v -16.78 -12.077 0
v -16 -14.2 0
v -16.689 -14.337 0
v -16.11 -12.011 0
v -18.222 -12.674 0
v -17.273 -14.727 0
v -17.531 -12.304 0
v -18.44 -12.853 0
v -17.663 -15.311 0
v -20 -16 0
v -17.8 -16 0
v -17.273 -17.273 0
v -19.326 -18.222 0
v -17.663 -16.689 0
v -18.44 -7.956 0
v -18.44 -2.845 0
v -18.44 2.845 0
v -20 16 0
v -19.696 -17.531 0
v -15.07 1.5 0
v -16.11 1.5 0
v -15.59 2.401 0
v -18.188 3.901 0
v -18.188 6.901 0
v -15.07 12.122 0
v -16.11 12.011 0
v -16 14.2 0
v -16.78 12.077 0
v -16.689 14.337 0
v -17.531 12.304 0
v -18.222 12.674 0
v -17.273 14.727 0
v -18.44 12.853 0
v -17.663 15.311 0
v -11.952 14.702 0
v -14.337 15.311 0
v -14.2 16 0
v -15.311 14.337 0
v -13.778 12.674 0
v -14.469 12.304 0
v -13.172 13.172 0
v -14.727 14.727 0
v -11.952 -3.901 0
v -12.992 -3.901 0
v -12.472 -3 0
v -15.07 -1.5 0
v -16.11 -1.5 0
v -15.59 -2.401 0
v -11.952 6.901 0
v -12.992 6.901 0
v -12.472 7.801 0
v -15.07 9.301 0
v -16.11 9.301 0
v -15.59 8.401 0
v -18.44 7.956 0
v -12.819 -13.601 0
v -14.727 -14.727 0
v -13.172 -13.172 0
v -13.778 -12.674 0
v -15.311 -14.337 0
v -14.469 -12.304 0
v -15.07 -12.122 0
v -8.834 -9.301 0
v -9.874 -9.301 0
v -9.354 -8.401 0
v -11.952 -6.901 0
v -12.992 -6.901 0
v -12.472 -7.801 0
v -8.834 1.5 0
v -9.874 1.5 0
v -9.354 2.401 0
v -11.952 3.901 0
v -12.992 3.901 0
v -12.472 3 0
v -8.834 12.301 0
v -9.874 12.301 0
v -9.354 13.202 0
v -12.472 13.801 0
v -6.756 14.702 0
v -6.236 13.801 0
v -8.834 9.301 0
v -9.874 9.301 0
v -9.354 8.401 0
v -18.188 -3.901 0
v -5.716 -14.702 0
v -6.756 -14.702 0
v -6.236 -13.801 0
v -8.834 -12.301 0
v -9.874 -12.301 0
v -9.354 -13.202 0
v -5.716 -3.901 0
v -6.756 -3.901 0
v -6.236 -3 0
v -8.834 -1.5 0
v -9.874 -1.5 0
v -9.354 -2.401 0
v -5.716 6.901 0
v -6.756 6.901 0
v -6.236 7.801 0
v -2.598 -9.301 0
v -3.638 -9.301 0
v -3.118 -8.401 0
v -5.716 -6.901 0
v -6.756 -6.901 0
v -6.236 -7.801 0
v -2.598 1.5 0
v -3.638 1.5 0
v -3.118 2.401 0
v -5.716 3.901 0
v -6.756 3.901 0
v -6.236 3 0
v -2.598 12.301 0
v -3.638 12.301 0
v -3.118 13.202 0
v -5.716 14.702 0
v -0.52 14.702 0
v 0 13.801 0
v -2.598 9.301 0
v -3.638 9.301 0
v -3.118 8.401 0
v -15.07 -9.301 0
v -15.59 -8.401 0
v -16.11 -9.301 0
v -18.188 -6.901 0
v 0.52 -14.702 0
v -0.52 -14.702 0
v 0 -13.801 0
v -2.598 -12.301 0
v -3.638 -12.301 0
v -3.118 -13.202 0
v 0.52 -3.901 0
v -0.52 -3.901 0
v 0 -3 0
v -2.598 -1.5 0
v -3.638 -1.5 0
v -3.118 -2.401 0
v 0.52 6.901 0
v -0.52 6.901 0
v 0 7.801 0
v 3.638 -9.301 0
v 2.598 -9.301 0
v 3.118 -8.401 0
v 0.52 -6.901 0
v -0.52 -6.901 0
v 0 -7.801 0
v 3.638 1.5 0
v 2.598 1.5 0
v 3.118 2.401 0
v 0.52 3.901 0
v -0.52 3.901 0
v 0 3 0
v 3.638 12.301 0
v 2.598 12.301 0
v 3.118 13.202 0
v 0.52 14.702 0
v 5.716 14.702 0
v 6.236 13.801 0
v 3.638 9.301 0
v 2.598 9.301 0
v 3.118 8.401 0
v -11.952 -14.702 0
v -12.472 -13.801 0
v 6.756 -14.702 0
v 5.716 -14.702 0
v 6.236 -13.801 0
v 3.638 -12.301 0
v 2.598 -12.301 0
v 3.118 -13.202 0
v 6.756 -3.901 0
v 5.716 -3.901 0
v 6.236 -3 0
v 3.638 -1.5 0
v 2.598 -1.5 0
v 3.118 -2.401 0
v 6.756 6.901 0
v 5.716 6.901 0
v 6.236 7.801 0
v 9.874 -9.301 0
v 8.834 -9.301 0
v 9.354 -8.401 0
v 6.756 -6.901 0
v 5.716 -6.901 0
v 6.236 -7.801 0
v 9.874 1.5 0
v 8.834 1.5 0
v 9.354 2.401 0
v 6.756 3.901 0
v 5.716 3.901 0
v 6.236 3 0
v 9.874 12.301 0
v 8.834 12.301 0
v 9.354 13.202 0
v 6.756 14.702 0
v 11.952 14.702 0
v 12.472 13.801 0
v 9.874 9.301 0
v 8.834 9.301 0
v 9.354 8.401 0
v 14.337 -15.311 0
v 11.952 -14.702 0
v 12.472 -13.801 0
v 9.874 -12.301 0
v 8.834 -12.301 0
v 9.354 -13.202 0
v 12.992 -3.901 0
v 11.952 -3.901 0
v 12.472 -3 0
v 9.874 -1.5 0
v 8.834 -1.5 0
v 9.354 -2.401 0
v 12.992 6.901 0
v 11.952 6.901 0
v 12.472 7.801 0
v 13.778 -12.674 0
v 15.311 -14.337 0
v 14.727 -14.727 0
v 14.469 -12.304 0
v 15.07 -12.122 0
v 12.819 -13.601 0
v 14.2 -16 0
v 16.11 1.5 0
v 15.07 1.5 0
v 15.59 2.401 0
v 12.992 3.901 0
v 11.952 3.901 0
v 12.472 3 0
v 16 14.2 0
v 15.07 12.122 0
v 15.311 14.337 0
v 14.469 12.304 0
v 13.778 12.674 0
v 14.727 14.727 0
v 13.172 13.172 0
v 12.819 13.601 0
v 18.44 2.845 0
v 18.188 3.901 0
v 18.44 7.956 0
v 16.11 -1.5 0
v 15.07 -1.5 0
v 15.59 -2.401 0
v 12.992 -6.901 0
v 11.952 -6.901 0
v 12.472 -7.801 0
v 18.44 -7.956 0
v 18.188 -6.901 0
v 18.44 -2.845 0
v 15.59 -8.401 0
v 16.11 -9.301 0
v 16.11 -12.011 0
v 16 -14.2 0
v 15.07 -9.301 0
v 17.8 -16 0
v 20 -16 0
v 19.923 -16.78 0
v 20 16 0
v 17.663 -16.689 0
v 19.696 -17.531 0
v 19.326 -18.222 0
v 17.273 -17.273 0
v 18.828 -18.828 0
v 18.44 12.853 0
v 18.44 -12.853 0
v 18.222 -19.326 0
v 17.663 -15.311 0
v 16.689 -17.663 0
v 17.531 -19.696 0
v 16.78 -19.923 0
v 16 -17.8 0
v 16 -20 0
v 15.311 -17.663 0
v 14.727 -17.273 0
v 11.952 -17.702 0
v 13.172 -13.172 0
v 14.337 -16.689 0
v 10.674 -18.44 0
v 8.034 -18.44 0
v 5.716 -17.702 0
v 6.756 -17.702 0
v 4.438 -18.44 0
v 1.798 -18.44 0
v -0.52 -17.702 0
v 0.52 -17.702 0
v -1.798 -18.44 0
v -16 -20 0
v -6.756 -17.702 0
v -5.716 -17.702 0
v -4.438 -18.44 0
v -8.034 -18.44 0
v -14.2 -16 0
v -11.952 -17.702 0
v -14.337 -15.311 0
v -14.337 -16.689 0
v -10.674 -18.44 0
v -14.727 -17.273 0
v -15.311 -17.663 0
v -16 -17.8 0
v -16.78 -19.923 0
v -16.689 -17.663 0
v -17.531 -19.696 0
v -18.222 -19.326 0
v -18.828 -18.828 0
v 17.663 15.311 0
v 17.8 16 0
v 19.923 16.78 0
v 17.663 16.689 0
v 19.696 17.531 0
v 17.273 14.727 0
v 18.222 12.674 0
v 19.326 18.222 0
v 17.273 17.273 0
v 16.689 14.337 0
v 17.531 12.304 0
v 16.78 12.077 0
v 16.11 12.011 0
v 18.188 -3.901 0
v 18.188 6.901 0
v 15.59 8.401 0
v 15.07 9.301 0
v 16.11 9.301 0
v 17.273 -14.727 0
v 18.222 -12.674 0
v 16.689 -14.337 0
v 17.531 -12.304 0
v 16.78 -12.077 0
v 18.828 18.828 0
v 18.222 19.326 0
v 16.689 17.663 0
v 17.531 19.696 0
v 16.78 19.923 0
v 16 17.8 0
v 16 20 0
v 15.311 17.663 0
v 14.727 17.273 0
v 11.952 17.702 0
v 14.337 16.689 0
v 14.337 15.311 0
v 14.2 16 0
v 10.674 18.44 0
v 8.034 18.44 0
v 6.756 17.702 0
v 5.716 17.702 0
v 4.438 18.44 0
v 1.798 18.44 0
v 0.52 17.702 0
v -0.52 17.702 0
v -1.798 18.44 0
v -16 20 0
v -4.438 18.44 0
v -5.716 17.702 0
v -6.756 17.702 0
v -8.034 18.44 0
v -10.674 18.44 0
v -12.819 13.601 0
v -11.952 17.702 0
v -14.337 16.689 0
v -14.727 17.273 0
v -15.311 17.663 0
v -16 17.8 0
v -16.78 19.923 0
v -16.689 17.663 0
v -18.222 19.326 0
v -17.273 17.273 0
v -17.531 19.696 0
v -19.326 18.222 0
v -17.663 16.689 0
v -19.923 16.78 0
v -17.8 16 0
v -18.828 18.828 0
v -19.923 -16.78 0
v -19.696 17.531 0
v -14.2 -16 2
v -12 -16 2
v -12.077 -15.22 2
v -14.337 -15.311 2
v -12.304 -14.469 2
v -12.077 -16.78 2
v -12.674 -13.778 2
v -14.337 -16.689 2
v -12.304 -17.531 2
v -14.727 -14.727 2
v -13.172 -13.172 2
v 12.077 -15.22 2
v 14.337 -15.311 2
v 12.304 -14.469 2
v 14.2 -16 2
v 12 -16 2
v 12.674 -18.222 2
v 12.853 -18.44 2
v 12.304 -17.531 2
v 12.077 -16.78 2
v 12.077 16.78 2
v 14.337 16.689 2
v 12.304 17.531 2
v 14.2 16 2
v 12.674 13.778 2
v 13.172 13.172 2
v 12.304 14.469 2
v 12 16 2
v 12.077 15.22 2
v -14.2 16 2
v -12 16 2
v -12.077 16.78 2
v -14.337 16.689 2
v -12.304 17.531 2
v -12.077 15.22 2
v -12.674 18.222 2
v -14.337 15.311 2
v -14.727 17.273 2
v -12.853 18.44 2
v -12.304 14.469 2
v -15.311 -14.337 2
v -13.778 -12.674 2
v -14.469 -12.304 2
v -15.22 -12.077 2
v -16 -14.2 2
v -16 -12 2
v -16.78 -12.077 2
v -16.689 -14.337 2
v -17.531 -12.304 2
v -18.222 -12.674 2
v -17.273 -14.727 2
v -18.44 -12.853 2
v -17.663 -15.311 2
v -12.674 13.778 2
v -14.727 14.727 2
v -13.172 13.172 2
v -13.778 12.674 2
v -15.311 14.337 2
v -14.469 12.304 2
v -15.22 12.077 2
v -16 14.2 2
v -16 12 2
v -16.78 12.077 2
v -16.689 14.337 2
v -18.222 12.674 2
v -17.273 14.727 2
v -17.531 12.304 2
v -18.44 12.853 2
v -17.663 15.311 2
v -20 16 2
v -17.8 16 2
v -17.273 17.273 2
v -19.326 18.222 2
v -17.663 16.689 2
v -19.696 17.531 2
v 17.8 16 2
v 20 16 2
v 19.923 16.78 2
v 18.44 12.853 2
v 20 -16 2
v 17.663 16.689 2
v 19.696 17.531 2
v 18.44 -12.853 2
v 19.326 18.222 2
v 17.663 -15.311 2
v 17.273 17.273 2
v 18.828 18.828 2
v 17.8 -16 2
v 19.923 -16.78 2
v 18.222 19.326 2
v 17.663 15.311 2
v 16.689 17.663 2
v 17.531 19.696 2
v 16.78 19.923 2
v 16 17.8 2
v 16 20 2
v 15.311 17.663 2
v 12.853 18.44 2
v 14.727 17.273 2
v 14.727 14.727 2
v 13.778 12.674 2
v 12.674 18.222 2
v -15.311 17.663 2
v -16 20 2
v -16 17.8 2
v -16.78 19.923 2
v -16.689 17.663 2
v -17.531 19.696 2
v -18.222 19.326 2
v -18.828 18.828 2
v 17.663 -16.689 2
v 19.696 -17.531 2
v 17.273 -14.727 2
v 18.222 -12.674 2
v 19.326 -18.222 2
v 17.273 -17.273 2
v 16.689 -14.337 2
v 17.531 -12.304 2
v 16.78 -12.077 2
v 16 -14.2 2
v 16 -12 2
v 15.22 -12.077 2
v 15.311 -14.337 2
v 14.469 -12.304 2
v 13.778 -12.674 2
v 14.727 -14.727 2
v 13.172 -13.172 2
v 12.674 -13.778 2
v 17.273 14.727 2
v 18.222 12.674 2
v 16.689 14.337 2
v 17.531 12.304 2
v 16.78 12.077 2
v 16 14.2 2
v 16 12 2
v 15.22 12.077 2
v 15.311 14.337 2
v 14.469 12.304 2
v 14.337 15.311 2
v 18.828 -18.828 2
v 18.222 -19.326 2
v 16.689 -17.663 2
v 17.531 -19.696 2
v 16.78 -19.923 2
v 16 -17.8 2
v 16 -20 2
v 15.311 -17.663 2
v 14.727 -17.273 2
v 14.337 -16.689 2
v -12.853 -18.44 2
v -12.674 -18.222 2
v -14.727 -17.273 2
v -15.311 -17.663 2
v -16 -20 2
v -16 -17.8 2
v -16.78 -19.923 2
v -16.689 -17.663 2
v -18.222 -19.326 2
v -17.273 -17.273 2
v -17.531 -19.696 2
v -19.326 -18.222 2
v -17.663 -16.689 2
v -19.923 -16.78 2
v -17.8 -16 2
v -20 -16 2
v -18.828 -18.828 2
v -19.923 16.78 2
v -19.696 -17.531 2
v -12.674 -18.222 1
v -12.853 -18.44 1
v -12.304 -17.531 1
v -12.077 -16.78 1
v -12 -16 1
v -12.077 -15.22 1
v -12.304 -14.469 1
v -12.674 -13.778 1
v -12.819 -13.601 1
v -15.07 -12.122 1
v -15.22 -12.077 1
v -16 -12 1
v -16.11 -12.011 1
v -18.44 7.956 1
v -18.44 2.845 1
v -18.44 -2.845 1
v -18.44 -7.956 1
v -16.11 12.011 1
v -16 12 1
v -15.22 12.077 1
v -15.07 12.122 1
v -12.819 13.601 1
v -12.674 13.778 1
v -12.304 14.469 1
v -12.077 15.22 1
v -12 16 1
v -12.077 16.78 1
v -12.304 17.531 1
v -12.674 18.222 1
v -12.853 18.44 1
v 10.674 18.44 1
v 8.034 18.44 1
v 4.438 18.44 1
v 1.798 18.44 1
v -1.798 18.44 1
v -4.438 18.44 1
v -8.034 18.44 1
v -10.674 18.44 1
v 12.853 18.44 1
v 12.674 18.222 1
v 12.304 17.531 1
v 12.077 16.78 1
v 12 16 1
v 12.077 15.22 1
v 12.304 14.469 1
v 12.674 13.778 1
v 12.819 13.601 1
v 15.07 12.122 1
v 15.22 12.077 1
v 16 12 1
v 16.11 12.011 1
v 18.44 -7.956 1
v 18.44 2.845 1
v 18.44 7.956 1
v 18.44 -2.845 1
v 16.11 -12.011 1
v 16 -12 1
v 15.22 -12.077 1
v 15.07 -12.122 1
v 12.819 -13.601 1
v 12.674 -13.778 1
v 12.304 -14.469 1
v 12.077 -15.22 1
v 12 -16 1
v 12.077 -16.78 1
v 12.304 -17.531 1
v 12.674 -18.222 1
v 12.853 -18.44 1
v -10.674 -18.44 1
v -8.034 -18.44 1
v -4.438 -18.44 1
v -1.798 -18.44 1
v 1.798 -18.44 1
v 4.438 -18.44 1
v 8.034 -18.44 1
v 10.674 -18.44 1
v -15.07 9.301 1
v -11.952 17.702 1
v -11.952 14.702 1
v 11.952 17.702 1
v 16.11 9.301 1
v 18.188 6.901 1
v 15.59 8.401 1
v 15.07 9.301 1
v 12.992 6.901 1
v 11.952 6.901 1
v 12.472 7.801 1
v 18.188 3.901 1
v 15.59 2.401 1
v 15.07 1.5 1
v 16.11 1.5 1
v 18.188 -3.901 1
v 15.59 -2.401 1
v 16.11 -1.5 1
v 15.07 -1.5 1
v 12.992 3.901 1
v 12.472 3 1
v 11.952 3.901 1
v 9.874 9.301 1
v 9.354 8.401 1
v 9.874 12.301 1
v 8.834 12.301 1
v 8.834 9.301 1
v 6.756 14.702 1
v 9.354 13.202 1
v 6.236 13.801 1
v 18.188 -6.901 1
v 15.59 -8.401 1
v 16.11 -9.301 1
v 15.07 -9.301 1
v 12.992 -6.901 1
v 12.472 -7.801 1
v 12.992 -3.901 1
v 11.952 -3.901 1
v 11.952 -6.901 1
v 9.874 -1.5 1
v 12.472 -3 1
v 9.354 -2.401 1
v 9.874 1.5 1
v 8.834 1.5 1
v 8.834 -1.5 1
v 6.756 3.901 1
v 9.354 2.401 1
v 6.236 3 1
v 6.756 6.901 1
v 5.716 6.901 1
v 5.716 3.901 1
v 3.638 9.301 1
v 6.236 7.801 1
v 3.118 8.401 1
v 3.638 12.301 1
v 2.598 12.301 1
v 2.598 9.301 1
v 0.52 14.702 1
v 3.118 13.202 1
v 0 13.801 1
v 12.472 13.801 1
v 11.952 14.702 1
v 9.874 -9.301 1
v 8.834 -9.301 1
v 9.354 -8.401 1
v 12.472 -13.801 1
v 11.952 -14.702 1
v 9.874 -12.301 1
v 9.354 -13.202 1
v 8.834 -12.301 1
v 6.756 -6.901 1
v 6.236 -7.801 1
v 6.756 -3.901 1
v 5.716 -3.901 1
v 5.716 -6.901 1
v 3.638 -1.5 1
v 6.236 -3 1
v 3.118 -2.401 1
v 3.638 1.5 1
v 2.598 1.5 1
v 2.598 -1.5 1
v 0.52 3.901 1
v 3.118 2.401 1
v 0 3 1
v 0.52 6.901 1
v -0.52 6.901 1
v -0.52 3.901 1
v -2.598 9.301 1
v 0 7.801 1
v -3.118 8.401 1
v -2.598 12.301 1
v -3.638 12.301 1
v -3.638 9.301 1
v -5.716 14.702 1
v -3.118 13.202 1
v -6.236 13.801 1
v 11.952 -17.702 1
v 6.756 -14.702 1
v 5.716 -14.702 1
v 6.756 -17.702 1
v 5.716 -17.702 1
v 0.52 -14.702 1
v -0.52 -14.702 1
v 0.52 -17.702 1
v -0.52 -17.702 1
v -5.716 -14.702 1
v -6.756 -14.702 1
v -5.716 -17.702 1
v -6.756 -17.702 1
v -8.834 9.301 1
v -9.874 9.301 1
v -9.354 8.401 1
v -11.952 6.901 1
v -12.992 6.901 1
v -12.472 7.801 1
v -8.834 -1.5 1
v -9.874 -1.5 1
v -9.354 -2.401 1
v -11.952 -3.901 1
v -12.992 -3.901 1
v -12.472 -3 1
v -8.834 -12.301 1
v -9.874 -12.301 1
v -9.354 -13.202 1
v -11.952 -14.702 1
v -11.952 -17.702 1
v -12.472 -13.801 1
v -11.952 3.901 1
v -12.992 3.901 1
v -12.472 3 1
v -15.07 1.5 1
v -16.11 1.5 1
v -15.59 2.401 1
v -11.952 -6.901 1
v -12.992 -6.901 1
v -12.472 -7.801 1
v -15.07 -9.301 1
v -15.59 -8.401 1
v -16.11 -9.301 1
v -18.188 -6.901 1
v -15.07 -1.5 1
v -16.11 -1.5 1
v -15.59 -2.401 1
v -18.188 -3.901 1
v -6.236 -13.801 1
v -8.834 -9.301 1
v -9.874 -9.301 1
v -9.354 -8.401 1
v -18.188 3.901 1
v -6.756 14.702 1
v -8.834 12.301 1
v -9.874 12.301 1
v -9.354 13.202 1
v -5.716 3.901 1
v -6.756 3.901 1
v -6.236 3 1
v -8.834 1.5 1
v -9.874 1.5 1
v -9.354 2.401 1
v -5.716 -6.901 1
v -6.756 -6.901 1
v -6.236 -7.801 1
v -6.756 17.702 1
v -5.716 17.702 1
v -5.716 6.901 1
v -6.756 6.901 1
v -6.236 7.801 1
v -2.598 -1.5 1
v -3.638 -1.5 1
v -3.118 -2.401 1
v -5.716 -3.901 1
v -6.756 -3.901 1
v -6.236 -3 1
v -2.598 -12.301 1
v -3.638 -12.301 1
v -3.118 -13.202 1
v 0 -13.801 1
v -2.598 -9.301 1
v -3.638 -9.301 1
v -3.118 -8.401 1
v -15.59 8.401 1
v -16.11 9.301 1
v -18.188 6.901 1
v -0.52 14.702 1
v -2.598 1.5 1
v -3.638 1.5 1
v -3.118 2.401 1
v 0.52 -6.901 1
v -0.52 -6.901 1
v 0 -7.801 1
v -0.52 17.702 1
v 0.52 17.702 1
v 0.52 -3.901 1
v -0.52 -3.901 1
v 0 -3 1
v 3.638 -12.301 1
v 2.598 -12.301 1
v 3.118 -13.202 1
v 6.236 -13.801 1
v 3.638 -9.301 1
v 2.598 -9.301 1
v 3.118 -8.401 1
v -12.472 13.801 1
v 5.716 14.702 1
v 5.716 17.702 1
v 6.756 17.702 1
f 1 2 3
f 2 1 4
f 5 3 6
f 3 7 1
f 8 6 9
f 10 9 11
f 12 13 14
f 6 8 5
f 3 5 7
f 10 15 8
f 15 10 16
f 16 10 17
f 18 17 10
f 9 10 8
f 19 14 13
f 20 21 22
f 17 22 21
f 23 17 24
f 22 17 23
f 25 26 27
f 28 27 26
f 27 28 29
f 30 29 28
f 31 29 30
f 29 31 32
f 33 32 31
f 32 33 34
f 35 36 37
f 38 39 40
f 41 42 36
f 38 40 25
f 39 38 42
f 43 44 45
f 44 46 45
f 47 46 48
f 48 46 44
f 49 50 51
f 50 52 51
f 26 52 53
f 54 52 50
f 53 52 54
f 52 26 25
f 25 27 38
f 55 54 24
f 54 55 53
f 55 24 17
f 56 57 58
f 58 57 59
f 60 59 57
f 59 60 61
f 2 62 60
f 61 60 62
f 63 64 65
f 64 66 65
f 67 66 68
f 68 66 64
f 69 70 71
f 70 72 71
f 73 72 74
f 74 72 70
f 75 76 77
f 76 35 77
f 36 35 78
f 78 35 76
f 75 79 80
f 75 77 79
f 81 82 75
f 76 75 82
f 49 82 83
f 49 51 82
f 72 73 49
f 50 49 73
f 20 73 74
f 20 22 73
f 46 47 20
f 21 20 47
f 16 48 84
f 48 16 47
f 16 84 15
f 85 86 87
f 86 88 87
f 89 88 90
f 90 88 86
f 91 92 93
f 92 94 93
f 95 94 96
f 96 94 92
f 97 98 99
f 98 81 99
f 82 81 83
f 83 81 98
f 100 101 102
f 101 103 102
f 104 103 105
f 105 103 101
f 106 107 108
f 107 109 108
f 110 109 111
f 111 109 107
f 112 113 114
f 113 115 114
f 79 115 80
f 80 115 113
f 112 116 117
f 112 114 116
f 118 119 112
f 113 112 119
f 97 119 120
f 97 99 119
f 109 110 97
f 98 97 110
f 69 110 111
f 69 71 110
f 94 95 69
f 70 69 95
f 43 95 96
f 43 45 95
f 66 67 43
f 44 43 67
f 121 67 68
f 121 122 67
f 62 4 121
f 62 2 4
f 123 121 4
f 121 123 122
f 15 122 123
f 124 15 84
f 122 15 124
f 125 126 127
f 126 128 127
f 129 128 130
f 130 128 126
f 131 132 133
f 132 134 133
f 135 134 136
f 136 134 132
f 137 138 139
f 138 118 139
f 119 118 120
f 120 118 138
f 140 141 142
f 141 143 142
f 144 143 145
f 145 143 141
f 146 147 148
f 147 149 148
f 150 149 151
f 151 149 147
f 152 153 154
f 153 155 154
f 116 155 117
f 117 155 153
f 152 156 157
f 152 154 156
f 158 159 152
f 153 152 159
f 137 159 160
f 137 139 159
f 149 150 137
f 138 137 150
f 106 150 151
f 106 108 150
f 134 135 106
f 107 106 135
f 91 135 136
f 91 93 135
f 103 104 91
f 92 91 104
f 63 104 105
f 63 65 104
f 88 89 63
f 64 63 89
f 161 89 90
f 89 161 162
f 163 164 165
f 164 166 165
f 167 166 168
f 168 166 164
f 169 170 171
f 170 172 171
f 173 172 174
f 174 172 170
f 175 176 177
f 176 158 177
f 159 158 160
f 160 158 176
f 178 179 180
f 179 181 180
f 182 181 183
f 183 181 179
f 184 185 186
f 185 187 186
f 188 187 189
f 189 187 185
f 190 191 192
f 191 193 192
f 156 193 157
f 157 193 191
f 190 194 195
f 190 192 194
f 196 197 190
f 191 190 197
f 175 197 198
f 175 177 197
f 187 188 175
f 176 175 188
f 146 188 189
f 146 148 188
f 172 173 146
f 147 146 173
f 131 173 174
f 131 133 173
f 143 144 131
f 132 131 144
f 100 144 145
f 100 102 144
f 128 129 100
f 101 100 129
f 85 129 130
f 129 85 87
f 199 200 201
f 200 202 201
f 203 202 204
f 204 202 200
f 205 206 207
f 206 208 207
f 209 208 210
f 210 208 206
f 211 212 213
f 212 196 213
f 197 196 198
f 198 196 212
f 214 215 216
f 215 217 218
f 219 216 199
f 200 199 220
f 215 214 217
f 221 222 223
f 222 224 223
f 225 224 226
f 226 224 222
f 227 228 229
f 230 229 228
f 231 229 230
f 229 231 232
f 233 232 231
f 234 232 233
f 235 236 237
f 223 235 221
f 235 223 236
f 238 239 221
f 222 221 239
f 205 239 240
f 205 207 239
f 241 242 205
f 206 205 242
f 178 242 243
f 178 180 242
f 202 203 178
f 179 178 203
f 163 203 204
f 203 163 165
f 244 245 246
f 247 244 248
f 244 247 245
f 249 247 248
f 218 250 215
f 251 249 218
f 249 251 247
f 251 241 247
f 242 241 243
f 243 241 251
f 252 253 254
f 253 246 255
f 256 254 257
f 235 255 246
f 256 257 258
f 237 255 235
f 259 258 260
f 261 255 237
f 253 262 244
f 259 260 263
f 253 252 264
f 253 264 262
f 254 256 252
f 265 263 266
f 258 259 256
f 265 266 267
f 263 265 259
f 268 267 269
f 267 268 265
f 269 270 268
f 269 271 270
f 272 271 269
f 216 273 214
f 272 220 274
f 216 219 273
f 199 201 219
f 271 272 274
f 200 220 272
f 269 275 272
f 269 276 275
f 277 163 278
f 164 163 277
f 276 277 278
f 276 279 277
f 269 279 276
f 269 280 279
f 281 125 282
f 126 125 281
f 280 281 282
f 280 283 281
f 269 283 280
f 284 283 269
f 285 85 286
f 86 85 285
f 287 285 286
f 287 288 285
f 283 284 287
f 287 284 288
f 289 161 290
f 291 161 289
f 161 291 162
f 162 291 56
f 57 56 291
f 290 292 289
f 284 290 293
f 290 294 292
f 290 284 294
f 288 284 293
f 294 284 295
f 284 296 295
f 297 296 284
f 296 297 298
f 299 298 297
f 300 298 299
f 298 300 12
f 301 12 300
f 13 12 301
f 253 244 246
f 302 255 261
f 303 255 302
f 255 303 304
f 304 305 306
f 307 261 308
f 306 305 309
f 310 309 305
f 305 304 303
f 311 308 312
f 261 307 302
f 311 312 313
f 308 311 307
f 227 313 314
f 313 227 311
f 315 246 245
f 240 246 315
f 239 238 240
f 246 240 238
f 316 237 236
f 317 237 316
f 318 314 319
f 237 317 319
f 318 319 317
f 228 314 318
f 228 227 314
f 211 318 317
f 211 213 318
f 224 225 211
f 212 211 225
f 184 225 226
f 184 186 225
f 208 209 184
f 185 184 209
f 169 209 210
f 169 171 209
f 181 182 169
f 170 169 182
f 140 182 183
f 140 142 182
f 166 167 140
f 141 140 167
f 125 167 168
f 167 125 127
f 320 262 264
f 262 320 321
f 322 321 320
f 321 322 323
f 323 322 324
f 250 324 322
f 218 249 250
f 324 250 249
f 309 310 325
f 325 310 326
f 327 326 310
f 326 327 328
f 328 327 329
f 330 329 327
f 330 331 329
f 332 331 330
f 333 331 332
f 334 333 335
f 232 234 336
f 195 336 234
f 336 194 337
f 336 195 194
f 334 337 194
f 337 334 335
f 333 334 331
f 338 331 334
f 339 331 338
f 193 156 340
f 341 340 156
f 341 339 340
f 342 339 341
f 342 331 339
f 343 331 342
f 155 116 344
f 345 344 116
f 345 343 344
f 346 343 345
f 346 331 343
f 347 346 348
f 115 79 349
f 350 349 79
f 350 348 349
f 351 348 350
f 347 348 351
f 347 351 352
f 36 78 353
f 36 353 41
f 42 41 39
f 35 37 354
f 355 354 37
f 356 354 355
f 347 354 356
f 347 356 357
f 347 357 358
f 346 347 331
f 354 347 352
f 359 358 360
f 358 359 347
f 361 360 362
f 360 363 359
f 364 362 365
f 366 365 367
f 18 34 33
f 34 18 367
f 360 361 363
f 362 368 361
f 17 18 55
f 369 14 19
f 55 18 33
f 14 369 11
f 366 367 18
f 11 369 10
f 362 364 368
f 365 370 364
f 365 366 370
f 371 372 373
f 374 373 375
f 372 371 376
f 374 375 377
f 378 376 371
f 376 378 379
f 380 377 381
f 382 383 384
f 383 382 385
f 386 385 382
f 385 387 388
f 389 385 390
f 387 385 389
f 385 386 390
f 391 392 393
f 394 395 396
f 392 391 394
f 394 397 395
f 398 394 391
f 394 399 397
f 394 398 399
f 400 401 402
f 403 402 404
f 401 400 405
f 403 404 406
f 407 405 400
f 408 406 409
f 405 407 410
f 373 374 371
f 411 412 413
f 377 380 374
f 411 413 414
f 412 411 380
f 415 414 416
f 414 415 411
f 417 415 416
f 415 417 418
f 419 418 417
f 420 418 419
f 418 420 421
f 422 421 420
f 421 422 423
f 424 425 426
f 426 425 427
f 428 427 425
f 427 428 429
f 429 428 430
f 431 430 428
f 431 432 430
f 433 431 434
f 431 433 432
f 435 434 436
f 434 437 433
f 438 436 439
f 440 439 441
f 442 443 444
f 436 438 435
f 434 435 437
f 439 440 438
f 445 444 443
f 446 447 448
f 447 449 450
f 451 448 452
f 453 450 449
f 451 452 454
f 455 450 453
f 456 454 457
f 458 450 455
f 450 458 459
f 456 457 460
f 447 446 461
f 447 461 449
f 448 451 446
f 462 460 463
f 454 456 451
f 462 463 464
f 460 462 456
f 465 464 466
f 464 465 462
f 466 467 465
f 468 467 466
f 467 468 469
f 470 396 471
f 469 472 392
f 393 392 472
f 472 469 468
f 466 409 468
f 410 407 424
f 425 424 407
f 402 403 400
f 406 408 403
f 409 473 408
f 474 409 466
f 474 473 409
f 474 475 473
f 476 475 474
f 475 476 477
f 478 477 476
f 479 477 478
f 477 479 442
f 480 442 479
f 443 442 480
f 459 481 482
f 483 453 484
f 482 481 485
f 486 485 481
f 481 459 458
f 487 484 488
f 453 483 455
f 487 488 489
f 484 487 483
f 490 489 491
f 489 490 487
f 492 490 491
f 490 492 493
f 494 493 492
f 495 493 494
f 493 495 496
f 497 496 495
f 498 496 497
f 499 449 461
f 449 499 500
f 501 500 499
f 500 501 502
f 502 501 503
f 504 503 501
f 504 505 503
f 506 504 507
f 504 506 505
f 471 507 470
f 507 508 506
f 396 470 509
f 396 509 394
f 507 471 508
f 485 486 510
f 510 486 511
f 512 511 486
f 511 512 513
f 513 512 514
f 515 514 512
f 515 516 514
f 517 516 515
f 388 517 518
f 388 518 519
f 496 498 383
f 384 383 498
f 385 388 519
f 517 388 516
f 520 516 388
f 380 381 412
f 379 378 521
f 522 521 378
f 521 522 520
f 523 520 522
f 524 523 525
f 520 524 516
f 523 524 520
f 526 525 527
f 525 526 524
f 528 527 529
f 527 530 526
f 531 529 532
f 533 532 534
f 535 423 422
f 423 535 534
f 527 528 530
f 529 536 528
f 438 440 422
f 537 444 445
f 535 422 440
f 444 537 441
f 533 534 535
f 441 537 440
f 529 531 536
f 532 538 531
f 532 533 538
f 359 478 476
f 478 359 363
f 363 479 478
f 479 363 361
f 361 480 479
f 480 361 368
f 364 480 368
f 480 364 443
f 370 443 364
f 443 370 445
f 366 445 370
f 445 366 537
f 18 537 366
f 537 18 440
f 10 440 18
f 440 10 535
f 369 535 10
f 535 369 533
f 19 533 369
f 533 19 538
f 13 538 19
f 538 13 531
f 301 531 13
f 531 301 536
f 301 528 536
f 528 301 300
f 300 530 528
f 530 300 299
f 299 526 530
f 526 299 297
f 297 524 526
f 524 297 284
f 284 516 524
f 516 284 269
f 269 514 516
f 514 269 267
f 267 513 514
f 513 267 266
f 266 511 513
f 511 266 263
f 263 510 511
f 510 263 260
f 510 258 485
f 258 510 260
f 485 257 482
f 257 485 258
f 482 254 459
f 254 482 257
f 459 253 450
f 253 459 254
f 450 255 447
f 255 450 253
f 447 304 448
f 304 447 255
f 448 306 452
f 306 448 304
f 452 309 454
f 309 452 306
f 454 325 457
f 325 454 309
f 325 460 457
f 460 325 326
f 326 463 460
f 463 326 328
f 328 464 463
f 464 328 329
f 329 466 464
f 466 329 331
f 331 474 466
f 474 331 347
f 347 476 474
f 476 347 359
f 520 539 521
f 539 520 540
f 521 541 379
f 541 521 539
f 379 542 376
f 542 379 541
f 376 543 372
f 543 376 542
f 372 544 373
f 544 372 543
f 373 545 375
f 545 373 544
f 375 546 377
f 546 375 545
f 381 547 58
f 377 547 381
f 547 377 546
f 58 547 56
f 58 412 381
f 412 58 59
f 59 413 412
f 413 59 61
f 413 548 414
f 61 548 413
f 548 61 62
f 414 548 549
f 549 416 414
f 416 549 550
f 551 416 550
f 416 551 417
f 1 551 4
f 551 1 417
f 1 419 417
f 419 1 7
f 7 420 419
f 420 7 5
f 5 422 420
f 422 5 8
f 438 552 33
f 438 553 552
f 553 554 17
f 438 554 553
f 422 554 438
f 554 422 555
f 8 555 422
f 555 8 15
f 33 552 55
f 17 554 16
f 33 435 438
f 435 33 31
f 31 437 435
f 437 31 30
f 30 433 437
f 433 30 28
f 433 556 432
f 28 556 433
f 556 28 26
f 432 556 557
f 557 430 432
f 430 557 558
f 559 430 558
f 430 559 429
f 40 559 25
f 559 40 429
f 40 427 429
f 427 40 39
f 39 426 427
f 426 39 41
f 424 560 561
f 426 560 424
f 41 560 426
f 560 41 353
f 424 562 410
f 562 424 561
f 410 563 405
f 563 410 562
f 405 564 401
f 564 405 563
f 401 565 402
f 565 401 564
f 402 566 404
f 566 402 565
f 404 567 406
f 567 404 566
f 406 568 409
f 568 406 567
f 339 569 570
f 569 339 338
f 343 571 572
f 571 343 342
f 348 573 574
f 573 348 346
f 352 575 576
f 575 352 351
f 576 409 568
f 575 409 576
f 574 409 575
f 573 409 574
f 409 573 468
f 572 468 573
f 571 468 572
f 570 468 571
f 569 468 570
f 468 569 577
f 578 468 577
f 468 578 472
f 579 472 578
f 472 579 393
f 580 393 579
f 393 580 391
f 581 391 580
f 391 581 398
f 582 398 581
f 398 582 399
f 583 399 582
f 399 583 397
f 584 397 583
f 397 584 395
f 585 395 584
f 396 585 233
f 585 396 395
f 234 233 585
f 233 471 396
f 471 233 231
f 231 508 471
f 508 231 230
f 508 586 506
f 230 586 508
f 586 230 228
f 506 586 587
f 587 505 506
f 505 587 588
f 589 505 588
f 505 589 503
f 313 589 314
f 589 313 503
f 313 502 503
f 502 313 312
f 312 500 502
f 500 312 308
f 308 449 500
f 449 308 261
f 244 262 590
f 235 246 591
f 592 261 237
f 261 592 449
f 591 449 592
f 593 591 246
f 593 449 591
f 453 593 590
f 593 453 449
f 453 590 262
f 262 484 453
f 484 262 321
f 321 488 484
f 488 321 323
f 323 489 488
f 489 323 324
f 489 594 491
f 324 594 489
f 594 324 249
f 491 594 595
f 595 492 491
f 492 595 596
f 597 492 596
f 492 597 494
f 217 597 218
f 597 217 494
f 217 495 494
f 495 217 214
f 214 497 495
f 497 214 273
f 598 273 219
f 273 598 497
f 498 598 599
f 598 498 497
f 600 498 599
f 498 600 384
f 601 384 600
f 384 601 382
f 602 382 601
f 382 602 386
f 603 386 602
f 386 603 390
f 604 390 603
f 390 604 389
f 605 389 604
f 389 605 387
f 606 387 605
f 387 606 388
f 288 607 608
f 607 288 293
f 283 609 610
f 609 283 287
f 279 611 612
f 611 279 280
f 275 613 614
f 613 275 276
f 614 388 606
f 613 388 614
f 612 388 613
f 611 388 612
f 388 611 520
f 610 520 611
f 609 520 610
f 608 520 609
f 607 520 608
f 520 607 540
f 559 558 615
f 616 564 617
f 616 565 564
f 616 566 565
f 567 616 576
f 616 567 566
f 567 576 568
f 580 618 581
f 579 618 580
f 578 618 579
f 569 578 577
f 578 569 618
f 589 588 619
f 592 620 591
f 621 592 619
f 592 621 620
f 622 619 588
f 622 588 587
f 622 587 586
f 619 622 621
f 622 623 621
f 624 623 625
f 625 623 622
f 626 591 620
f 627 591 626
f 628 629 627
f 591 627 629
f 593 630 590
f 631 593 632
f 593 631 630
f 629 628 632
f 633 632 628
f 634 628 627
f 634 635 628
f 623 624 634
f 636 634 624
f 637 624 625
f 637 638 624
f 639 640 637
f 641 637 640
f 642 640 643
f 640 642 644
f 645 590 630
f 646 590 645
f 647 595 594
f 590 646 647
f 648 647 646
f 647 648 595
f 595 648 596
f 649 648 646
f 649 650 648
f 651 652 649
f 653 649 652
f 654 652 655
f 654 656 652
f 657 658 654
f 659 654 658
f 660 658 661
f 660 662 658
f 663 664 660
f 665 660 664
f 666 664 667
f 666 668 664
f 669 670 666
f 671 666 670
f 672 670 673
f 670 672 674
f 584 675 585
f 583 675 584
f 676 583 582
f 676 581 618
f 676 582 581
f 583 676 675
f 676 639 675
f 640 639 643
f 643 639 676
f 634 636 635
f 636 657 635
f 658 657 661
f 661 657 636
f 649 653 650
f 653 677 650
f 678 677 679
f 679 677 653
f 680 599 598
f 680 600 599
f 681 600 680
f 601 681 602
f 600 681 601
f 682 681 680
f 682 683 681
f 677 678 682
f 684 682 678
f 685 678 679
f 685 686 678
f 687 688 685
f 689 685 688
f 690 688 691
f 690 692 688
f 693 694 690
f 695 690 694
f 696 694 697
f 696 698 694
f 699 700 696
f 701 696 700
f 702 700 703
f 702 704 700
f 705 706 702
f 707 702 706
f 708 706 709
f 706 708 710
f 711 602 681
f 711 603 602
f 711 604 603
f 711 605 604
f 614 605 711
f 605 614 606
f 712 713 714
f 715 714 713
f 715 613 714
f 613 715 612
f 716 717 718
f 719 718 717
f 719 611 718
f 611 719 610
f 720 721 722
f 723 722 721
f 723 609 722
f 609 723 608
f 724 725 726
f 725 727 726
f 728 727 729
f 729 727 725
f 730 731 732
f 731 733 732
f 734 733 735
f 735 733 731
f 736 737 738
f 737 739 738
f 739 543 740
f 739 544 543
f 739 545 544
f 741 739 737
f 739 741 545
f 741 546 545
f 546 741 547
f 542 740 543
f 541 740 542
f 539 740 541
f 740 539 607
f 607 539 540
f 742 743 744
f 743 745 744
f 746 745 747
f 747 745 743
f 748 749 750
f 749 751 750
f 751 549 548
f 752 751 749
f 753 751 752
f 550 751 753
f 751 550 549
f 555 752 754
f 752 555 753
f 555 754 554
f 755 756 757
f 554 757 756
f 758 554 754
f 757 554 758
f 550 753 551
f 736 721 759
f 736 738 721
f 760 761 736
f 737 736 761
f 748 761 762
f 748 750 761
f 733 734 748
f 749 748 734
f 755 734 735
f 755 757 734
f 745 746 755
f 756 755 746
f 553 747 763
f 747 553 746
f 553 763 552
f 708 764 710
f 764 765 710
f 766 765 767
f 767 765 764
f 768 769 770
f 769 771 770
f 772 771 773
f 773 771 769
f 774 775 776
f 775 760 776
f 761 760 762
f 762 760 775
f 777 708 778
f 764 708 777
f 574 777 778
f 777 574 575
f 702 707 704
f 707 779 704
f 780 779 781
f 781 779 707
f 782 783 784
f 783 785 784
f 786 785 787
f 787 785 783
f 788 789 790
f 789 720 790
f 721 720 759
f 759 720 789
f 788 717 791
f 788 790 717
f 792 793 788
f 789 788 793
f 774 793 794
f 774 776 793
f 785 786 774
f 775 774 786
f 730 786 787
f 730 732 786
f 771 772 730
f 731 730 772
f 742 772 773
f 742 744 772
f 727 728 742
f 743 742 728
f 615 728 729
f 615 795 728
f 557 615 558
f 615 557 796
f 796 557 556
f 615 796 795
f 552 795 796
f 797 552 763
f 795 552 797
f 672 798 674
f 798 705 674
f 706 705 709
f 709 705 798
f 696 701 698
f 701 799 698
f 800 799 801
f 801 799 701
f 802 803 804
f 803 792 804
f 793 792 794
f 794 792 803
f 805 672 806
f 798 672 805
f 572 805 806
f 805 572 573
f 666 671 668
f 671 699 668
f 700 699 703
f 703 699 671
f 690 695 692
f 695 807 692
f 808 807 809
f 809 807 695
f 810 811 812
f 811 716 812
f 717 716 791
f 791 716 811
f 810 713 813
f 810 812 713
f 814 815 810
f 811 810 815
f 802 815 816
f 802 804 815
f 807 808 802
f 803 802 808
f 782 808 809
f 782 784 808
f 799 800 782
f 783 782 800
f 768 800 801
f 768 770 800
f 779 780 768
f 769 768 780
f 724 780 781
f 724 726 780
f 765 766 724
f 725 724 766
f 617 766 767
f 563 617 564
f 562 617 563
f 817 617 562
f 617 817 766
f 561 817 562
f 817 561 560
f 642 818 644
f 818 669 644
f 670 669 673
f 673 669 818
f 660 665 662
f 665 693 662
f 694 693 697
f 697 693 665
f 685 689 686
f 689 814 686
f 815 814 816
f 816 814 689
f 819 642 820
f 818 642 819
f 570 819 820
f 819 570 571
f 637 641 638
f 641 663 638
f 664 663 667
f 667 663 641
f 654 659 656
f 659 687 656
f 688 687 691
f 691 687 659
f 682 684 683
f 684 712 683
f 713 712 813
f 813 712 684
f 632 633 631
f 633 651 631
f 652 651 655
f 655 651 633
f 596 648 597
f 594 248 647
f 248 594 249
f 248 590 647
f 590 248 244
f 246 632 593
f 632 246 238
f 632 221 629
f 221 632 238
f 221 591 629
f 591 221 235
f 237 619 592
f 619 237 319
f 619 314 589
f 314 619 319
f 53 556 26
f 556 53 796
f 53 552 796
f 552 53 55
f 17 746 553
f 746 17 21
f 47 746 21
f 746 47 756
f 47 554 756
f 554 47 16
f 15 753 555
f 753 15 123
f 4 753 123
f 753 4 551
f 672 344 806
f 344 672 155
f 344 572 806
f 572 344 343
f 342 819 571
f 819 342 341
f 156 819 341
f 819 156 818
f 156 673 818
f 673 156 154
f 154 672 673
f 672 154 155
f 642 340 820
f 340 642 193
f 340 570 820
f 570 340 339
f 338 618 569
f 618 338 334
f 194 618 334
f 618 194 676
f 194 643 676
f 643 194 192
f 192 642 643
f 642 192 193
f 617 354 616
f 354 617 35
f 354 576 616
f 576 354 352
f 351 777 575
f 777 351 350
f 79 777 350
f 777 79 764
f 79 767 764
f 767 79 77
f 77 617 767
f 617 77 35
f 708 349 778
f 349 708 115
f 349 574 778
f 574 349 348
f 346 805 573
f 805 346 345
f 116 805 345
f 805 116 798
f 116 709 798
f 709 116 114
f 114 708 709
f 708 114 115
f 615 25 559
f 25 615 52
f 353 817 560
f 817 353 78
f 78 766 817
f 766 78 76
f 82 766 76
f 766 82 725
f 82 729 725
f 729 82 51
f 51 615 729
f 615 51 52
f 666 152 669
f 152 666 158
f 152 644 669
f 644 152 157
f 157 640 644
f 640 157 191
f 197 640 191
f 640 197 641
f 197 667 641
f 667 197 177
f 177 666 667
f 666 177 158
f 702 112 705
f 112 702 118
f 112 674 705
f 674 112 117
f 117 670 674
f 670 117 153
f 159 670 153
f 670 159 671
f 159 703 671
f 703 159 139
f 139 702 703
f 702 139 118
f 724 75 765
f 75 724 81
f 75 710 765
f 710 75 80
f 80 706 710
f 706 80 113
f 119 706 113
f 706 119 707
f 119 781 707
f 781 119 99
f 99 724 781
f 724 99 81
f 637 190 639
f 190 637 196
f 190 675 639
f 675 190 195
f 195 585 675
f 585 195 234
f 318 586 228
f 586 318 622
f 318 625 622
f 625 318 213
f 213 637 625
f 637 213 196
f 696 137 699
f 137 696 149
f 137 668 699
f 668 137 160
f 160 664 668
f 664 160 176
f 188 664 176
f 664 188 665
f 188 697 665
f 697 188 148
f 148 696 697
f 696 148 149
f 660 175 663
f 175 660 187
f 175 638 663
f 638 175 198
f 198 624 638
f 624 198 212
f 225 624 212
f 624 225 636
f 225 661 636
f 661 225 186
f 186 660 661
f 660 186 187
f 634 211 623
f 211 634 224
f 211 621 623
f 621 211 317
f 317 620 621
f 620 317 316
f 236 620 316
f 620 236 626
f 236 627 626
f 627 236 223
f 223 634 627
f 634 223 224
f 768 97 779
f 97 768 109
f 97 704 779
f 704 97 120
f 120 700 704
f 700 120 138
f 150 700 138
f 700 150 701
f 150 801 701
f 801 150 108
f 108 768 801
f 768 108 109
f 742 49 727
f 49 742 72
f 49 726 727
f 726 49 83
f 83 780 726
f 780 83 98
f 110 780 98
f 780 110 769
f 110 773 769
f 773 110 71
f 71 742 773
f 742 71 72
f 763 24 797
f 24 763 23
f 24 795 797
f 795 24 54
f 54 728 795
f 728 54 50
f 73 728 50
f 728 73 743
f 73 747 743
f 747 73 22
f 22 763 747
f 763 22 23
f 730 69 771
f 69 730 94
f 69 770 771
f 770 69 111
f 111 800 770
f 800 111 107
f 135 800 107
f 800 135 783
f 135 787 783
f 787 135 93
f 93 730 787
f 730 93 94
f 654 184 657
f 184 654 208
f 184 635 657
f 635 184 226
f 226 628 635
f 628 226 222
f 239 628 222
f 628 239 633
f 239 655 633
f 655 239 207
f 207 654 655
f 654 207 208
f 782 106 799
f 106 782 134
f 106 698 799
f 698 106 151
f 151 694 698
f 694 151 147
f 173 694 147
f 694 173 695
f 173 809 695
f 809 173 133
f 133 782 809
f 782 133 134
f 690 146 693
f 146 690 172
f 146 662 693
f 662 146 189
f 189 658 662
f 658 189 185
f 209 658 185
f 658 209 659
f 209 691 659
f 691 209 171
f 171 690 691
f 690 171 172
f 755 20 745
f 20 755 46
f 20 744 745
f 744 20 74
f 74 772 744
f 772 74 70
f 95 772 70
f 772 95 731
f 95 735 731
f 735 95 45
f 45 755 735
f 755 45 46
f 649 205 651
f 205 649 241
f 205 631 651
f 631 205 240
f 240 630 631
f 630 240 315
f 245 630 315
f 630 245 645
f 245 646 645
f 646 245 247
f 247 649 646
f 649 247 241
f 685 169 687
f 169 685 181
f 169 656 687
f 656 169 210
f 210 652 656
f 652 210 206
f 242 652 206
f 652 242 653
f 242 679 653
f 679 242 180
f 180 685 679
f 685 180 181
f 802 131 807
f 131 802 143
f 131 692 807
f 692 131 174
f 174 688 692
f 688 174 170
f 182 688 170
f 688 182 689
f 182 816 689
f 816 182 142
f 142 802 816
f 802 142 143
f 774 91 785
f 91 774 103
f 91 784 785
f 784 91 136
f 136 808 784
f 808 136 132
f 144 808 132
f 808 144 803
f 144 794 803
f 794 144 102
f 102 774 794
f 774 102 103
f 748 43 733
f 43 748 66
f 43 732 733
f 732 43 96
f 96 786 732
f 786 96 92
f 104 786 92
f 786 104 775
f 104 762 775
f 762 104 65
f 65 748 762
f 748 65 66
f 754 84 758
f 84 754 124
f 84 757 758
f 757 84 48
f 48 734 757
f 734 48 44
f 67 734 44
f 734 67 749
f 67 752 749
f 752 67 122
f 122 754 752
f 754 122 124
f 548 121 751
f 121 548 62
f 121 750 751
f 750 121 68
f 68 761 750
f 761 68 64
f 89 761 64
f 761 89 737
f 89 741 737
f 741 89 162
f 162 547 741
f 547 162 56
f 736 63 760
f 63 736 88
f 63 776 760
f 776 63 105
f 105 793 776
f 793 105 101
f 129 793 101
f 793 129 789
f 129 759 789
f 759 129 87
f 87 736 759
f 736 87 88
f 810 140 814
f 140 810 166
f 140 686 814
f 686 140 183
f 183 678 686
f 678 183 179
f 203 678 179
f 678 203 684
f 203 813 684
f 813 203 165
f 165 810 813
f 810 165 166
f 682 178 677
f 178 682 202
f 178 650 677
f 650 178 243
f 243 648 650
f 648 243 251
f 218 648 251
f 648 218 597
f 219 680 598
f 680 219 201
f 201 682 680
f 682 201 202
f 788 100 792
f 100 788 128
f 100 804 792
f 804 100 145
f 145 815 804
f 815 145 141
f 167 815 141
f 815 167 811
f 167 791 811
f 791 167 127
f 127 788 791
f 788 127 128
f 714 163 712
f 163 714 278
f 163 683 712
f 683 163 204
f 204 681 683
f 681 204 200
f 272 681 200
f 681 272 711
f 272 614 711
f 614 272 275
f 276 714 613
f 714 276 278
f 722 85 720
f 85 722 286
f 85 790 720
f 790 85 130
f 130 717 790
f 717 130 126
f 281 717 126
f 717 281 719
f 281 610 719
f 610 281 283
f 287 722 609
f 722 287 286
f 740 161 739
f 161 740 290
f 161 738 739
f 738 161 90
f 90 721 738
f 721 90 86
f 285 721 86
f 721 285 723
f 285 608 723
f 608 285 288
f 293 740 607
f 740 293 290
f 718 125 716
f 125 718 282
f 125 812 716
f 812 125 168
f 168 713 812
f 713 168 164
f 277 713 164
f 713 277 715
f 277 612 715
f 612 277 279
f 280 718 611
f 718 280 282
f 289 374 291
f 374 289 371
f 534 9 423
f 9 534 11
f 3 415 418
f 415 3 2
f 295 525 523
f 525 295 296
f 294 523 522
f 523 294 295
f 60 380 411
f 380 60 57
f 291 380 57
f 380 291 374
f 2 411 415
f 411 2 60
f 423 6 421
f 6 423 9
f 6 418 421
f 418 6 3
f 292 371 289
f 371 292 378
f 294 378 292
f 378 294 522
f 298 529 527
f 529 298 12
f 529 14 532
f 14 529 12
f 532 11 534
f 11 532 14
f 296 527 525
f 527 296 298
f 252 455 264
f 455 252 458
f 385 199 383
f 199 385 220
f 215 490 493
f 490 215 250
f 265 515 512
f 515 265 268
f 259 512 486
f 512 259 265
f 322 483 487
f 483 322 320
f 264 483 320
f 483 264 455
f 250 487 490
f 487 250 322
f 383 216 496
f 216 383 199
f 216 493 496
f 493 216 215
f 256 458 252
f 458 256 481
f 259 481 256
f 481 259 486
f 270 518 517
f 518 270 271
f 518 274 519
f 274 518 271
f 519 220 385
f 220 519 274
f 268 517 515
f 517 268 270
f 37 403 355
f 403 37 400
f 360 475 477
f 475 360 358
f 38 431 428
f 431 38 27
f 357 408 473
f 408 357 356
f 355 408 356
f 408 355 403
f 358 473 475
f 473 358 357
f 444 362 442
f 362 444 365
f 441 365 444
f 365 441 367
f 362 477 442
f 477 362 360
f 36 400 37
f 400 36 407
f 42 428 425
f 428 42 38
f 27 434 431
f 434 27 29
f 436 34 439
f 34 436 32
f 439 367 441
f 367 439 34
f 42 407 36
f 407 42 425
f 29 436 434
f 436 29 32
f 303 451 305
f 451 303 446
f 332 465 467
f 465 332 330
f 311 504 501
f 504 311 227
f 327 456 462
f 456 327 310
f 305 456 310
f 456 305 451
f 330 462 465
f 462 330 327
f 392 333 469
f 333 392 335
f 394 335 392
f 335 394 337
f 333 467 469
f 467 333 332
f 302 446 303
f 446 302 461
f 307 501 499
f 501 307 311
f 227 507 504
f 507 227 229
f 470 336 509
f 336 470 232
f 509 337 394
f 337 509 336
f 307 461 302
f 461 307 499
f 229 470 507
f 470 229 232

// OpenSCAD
/*
 * Customizable Fan Cover - https://www.thingiverse.com/thing:2802474
 * by Dennis Hofmann - https://www.thingiverse.com/mightynozzle/about
 * created 2018-02-22
 * updated 2018-03-27
 * version v1.2
 *
 * Changelog
 * --------------
 * v1.2:
 *      - better quality of rounded corners and crosshair pattern
 * v1.1:
 *      - added support line option for crosshair and square pattern
 * v1.0:
 *      - final design
 * --------------
 *
 * This work is licensed under the Creative Commons - Attribution - Non-Commercial - ShareAlike license.
 * https://creativecommons.org/licenses/by-nc-sa/3.0/
 */


 // Parameter Section //
//-------------------//

/* [Global Settings] */

// Choose between presets of known and common fan sizes.
fan_preset = "custom"; //[25:25mm,30:30mm,40:40mm,50:50mm,60:60mm,70:70mm,80:80mm,92:92mm,120:120mm,140:140mm,custom:Custom Fan Settings]

// If you want save to save about 40% filament and about 20% printing time, you can choose the reduced frame option.
frame_option = "reduced"; //[full,reduced]

// Minimum Border Size. I recommend to use two/four/six... times of your line width setting of your slicer. Simplify3D uses 0.48mm line width by default if you are using a 0.4mm nozzle. Cura uses 0.4mm line width.
min_border_size_in_millimeter = 0.52*3;

// Choose between a grill pattern
grill_pattern = "honeycomb"; //[honeycomb,grid,line,triangle,crosshair,square,dot,aperture]

// Set the angle of the pattern around the center of the cover.
grill_pattern_rotation = 0; //[0:5:360]

// Size of the pattern lines. I recommend to use two/four/six... times of your line width setting of your slicer. Simplify3D uses 0.48mm line width by default if you are using a 0.4mm nozzle. Cura uses 0.4mm line width.
line_size_in_millimter = 0.52*2; //[0.3:0.02:4]

// Space between two lines of your pattern. If you choose aperture pattern, this value set the size of the center octagon.
line_space_in_millimeter = 6; //[1:0.1:50]

// If you need countersunk holes, you can activate it here. Bottom = first layer. Top = last layer. 
screw_hole_chamfer = "no"; //[no,top,bottom,top_and_bottom]

// Activate or deactivate rounded corners. The radius will be automatically calculated.
rounded_corners = "yes"; //[yes,no]

// number of straight lines supporting the crosshair or square pattern.
number_of_support_lines = 2;  //[1:1:36]

/* [Custom Fan Settings] */

// Cover size. E.g. 80 for a 80mm Fan
cover_size_in_millimeter = 40;

// E.g. 2.9 for M2.5, 3.3 for M3, 4.4 for M4
screw_hole_diameter_in_millimeter = 3.6;

// 25mm fan: 20 | 30mm fan: 24 | 40mm fan: 32 | 50mm fan: 40 | 60mm fan: 50 | 70mm fan: 61.5 | 80mm fan: 71.5 | 92mm fan: 82.5 | 120mm fan: 105 | 140mm fan: 126 
screw_hole_distance_in_millimeter = 32;

// Height of the outer frame of the cover
cover_height_in_millimeter = 2;

// Height of the pattern inside the cover frame
grill_pattern_height_in_millimeter = 1;

/* [Hidden] */
min_border_size = min_border_size_in_millimeter;
line_size = line_size_in_millimter;
line_space = line_space_in_millimeter;

 // Program Section //
//-----------------//

if(fan_preset == "25") {
    fan_cover(cover_size = 25, screw_hole_dia = 2.9, screw_hole_distance = 20, cover_h = 2, grill_pattern_h = 1);
}
if(fan_preset == "30") {
    fan_cover(cover_size = 30, screw_hole_dia = 3.3, screw_hole_distance = 24, cover_h = 2.5, grill_pattern_h = 1.1);
}
if(fan_preset == "40") {
    fan_cover(cover_size = 40, screw_hole_dia = 3.3, screw_hole_distance = 32, cover_h = 2.7, grill_pattern_h = 1.2);
}
if(fan_preset == "50") {
    fan_cover(cover_size = 50, screw_hole_dia = 4.4, screw_hole_distance = 40, cover_h = 2.9, grill_pattern_h = 1.3);
}
if(fan_preset == "60") {
    fan_cover(cover_size = 60, screw_hole_dia = 4.4, screw_hole_distance = 50, cover_h = 3, grill_pattern_h = 1.3);
}
if(fan_preset == "70") {
    fan_cover(cover_size = 70, screw_hole_dia = 4.4, screw_hole_distance = 61.5, cover_h = 3, grill_pattern_h = 1.4);
}
if(fan_preset == "80") {
    fan_cover(cover_size = 80, screw_hole_dia = 4.4, screw_hole_distance = 71.5, cover_h = 3.2, grill_pattern_h = 1.5);
}
if(fan_preset == "92") {
    fan_cover(cover_size = 92, screw_hole_dia = 4.4, screw_hole_distance = 82.5, cover_h = 3.5, grill_pattern_h = 1.6);
}
if(fan_preset == "120") {
    fan_cover(cover_size = 120, screw_hole_dia = 4.4, screw_hole_distance = 105, cover_h = 4, grill_pattern_h = 1.8);
}
if(fan_preset == "140") {
    fan_cover(cover_size = 140, screw_hole_dia = 4.4, screw_hole_distance = 126, cover_h = 4.5, grill_pattern_h = 2.0);
}
if(fan_preset == "custom") {
    fan_cover(cover_size = cover_size_in_millimeter, screw_hole_dia = screw_hole_diameter_in_millimeter, screw_hole_distance = screw_hole_distance_in_millimeter, cover_h = cover_height_in_millimeter, grill_pattern_h = grill_pattern_height_in_millimeter);
}


 // Module Section //
//----------------//

module fan_cover(cover_size, screw_hole_dia, screw_hole_distance, cover_h, grill_pattern_h) {
    corner_size = cover_size - screw_hole_distance;
    corner_r = rounded_corners == "yes" ? corner_size / 2 : 0;
    screw_pos = (cover_size - corner_size) / 2;
    color("DodgerBlue") difference() {
        union() {
            linear_extrude(height = cover_h, convexity = 20) {
                difference() {
                    offset(r=corner_r, $fn = ceil(corner_r * 8)) {
                        offset(r=-corner_r) {
                            square([cover_size, cover_size], center = true);
                        }
                    }
                    if(frame_option == "reduced") {
                        offset(r=corner_r, $fn = ceil(corner_r * 8)) {
                            offset(r=-corner_r) {
                                square([cover_size - min_border_size*2, cover_size - min_border_size*2], center = true);
                            }
                        }
                    }
                    if(frame_option == "full") {
                        circle(d = cover_size - min_border_size * 2, $fn = cover_size);
                    }
                } 
                if(frame_option == "reduced") {
                    for(y = [-1:2:1]) {
                        for(x = [-1:2:1]) {
                            translate([screw_pos * x, screw_pos * y, -2]) {
                                circle(d = corner_size, $fn = ceil(corner_r * 8));
                            }
                        }
                    }
                }
            }
            linear_extrude(height = grill_pattern_h, convexity = 20) {
                intersection() {
                    offset(r=corner_r, $fn = ceil(corner_r * 8)) {
                        offset(r=-corner_r) {
                            square([cover_size, cover_size], center = true);
                        }
                    }
                    rotate(grill_pattern_rotation) {
                        if(grill_pattern == "honeycomb") {
                            honeycomb_pattern(cover_size, line_size, line_space);
                        }
                        if(grill_pattern == "grid") {
                            grid_pattern(cover_size, line_size, line_space);
                        }
                        if(grill_pattern == "line") {
                            line_pattern(cover_size, line_size, line_space);
                        }
                        if(grill_pattern == "triangle") {
                            triangle_pattern(cover_size, line_size, line_space);
                        }
                        if(grill_pattern == "crosshair") {
                            crosshair_pattern(cover_size, line_size, line_space);
                        }
                        if(grill_pattern == "square") {
                            square_pattern(cover_size, line_size, line_space);
                        }
                        if(grill_pattern == "dot") {
                            dot_pattern(cover_size, line_size, line_space);
                        }
                        if(grill_pattern == "aperture") {
                            aperture_pattern(cover_size, line_size, line_space);
                        }
                        
                    }
                }
            }
        }
        for(y = [-1:2:1]) {
            for(x = [-1:2:1]) {
                translate([screw_pos * x, screw_pos * y, -2]) {
                    screw_hole(cover_h, screw_hole_dia);
                }
            }
        }
    }
}

module screw_hole(cover_h, screw_hole_dia) {
    cylinder(h = cover_h + 4, d = screw_hole_dia, $fn = 16);
    if(screw_hole_chamfer == "bottom" || screw_hole_chamfer == "top_and_bottom") {
        translate([0, 0, 2.9 - screw_hole_dia]) {
            cylinder(h = screw_hole_dia, d1 = screw_hole_dia * 4, d2 = screw_hole_dia);
        }
    }
    if(screw_hole_chamfer == "top" || screw_hole_chamfer == "top_and_bottom") {
        translate([0, 0, cover_h + screw_hole_dia/4]) {
            cylinder(h = screw_hole_dia, d2 = screw_hole_dia * 4, d1 = screw_hole_dia);
        }
    }
}

module grid_pattern(size, line_size, line_space) {
    num = ceil(size / (line_size + line_space) * 1.42);
    for(x = [floor(-num / 2) : ceil(num / 2)]) {
        translate([x * (line_size + line_space), 0]) {
            square([line_size, num *(line_size + line_space)], center=true);
        }
        rotate(90) {
            translate([x * (line_size + line_space), 0]) {
                square([line_size, num *(line_size + line_space)], center = true);
            }
        }
    }
}

module triangle_pattern(size, line_size, line_space) {
    num = ceil(size / (line_size + line_space) * 1.42);
    for(x = [floor(-num / 2):ceil(num / 2)]) {
        translate([x * (line_size + line_space), 0]) {
            square([line_size, num *(line_size + line_space)], center = true);
        }
        rotate(60) {
            translate([x * (line_size + line_space), 0]) {
                square([line_size, num *(line_size + line_space)], center = true);
            }
        }
        rotate(120) {
            translate([x * (line_size + line_space), 0]) {
                square([line_size, num *(line_size + line_space)], center = true);
            }
        }
    }
}

module line_pattern(size, line_size, line_space) {
    num = ceil(size / (line_size + line_space)*1.42);
    for(x = [floor(-num / 2):ceil(num / 2)]) {
        translate([x * (line_size + line_space), 0]) {
            square([line_size, num *(line_size + line_space)], center=true);
        }
    }
}

module crosshair_pattern(size, line_size, line_space) {
    line = (line_size + line_space) * 2;
    num = ceil(size / line * 1.42);
    for(n = [1:num]) {
        difference() {
            circle(d = n * line + line_size * 2, $fn = ceil(n * line + line_size * 2));
            circle(d = n * line, $fn = ceil(n * line + line_size * 2));
        }
    }
    for(rot=[0:90 / number_of_support_lines * 2:180]) {
        rotate(rot + 45) square([size * 2, line_size], center = true);
    }
}

module square_pattern(size, line_size, line_space) {
    line = (line_size + line_space) * 2;
    num = ceil(size / line * 1.42); 
    for(n = [1:num]) {
        difference() {
            square([n * line + line_size * 2, n * line + line_size * 2], center = true);
            square([n * line, n * line], center = true);
        }
    }
    for(rot=[0:90 / number_of_support_lines * 2:180]) {
        rotate(rot + 45) square([size * 2, line_size], center = true);
    }
}

module honeycomb_pattern(size, line_size, line_space) {
    min_rad = (line_space / 2 * sqrt(3)) / 2 + line_size / 2;
    y_offset = sqrt(min_rad * min_rad * 4 - min_rad * min_rad);
    num_x = ceil(size / min_rad / 2) * 1.42;
    num_y = ceil(size / y_offset) * 1.42;
    difference() {
        square([size * 1.42, size * 1.42], center = true);
        for(y = [floor(-num_y / 2) : ceil(num_y / 2)]) {
            odd = (y % 2 == 0) ? 0 : min_rad;
            for(x = [floor(-num_x / 2) : ceil(num_x / 2)]) {
                translate([x * min_rad * 2 + odd, y * y_offset]) {
                    rotate(30) {
                        circle(d=line_space, $fn=6);
                    }
                }
            }
        }
    }
}

module dot_pattern(size, line_size, line_space) {
    rad = line_space / 2;
    y_offset = sqrt((rad + line_size / 2) * (rad + line_size / 2) * 4 - (rad + line_size / 2) * (rad + line_size / 2));
    num_x = ceil(size / rad / 2) * 1.42;
    num_y = ceil(size / y_offset) * 1.42;
    difference() {
        square([size * 1.42, size * 1.42], center = true);
        for(y = [floor(-num_y / 2) : ceil(num_y / 2)]) {
            odd = (y % 2 == 0) ? 0 : rad + line_size / 2;
            for(x = [floor(-num_x / 2) : ceil(num_x / 2)]) {
                translate([x * (rad + line_size / 2) * 2 + odd, y * y_offset]) {
                    rotate(30) {
                        circle(d=line_space);
                    }
                }
            }
        }
    }
}

module aperture_pattern(size, line_size, line_space) {
    circle(d = line_space, $fn = 8);
    for(rot = [1:2:15]) {
        rotate(360 / 16 * rot) {
            translate([line_space / 2 * cos(360 / 16) - line_size, -line_size]) {
                square([line_size, size]);
            }
        }
    }
}
